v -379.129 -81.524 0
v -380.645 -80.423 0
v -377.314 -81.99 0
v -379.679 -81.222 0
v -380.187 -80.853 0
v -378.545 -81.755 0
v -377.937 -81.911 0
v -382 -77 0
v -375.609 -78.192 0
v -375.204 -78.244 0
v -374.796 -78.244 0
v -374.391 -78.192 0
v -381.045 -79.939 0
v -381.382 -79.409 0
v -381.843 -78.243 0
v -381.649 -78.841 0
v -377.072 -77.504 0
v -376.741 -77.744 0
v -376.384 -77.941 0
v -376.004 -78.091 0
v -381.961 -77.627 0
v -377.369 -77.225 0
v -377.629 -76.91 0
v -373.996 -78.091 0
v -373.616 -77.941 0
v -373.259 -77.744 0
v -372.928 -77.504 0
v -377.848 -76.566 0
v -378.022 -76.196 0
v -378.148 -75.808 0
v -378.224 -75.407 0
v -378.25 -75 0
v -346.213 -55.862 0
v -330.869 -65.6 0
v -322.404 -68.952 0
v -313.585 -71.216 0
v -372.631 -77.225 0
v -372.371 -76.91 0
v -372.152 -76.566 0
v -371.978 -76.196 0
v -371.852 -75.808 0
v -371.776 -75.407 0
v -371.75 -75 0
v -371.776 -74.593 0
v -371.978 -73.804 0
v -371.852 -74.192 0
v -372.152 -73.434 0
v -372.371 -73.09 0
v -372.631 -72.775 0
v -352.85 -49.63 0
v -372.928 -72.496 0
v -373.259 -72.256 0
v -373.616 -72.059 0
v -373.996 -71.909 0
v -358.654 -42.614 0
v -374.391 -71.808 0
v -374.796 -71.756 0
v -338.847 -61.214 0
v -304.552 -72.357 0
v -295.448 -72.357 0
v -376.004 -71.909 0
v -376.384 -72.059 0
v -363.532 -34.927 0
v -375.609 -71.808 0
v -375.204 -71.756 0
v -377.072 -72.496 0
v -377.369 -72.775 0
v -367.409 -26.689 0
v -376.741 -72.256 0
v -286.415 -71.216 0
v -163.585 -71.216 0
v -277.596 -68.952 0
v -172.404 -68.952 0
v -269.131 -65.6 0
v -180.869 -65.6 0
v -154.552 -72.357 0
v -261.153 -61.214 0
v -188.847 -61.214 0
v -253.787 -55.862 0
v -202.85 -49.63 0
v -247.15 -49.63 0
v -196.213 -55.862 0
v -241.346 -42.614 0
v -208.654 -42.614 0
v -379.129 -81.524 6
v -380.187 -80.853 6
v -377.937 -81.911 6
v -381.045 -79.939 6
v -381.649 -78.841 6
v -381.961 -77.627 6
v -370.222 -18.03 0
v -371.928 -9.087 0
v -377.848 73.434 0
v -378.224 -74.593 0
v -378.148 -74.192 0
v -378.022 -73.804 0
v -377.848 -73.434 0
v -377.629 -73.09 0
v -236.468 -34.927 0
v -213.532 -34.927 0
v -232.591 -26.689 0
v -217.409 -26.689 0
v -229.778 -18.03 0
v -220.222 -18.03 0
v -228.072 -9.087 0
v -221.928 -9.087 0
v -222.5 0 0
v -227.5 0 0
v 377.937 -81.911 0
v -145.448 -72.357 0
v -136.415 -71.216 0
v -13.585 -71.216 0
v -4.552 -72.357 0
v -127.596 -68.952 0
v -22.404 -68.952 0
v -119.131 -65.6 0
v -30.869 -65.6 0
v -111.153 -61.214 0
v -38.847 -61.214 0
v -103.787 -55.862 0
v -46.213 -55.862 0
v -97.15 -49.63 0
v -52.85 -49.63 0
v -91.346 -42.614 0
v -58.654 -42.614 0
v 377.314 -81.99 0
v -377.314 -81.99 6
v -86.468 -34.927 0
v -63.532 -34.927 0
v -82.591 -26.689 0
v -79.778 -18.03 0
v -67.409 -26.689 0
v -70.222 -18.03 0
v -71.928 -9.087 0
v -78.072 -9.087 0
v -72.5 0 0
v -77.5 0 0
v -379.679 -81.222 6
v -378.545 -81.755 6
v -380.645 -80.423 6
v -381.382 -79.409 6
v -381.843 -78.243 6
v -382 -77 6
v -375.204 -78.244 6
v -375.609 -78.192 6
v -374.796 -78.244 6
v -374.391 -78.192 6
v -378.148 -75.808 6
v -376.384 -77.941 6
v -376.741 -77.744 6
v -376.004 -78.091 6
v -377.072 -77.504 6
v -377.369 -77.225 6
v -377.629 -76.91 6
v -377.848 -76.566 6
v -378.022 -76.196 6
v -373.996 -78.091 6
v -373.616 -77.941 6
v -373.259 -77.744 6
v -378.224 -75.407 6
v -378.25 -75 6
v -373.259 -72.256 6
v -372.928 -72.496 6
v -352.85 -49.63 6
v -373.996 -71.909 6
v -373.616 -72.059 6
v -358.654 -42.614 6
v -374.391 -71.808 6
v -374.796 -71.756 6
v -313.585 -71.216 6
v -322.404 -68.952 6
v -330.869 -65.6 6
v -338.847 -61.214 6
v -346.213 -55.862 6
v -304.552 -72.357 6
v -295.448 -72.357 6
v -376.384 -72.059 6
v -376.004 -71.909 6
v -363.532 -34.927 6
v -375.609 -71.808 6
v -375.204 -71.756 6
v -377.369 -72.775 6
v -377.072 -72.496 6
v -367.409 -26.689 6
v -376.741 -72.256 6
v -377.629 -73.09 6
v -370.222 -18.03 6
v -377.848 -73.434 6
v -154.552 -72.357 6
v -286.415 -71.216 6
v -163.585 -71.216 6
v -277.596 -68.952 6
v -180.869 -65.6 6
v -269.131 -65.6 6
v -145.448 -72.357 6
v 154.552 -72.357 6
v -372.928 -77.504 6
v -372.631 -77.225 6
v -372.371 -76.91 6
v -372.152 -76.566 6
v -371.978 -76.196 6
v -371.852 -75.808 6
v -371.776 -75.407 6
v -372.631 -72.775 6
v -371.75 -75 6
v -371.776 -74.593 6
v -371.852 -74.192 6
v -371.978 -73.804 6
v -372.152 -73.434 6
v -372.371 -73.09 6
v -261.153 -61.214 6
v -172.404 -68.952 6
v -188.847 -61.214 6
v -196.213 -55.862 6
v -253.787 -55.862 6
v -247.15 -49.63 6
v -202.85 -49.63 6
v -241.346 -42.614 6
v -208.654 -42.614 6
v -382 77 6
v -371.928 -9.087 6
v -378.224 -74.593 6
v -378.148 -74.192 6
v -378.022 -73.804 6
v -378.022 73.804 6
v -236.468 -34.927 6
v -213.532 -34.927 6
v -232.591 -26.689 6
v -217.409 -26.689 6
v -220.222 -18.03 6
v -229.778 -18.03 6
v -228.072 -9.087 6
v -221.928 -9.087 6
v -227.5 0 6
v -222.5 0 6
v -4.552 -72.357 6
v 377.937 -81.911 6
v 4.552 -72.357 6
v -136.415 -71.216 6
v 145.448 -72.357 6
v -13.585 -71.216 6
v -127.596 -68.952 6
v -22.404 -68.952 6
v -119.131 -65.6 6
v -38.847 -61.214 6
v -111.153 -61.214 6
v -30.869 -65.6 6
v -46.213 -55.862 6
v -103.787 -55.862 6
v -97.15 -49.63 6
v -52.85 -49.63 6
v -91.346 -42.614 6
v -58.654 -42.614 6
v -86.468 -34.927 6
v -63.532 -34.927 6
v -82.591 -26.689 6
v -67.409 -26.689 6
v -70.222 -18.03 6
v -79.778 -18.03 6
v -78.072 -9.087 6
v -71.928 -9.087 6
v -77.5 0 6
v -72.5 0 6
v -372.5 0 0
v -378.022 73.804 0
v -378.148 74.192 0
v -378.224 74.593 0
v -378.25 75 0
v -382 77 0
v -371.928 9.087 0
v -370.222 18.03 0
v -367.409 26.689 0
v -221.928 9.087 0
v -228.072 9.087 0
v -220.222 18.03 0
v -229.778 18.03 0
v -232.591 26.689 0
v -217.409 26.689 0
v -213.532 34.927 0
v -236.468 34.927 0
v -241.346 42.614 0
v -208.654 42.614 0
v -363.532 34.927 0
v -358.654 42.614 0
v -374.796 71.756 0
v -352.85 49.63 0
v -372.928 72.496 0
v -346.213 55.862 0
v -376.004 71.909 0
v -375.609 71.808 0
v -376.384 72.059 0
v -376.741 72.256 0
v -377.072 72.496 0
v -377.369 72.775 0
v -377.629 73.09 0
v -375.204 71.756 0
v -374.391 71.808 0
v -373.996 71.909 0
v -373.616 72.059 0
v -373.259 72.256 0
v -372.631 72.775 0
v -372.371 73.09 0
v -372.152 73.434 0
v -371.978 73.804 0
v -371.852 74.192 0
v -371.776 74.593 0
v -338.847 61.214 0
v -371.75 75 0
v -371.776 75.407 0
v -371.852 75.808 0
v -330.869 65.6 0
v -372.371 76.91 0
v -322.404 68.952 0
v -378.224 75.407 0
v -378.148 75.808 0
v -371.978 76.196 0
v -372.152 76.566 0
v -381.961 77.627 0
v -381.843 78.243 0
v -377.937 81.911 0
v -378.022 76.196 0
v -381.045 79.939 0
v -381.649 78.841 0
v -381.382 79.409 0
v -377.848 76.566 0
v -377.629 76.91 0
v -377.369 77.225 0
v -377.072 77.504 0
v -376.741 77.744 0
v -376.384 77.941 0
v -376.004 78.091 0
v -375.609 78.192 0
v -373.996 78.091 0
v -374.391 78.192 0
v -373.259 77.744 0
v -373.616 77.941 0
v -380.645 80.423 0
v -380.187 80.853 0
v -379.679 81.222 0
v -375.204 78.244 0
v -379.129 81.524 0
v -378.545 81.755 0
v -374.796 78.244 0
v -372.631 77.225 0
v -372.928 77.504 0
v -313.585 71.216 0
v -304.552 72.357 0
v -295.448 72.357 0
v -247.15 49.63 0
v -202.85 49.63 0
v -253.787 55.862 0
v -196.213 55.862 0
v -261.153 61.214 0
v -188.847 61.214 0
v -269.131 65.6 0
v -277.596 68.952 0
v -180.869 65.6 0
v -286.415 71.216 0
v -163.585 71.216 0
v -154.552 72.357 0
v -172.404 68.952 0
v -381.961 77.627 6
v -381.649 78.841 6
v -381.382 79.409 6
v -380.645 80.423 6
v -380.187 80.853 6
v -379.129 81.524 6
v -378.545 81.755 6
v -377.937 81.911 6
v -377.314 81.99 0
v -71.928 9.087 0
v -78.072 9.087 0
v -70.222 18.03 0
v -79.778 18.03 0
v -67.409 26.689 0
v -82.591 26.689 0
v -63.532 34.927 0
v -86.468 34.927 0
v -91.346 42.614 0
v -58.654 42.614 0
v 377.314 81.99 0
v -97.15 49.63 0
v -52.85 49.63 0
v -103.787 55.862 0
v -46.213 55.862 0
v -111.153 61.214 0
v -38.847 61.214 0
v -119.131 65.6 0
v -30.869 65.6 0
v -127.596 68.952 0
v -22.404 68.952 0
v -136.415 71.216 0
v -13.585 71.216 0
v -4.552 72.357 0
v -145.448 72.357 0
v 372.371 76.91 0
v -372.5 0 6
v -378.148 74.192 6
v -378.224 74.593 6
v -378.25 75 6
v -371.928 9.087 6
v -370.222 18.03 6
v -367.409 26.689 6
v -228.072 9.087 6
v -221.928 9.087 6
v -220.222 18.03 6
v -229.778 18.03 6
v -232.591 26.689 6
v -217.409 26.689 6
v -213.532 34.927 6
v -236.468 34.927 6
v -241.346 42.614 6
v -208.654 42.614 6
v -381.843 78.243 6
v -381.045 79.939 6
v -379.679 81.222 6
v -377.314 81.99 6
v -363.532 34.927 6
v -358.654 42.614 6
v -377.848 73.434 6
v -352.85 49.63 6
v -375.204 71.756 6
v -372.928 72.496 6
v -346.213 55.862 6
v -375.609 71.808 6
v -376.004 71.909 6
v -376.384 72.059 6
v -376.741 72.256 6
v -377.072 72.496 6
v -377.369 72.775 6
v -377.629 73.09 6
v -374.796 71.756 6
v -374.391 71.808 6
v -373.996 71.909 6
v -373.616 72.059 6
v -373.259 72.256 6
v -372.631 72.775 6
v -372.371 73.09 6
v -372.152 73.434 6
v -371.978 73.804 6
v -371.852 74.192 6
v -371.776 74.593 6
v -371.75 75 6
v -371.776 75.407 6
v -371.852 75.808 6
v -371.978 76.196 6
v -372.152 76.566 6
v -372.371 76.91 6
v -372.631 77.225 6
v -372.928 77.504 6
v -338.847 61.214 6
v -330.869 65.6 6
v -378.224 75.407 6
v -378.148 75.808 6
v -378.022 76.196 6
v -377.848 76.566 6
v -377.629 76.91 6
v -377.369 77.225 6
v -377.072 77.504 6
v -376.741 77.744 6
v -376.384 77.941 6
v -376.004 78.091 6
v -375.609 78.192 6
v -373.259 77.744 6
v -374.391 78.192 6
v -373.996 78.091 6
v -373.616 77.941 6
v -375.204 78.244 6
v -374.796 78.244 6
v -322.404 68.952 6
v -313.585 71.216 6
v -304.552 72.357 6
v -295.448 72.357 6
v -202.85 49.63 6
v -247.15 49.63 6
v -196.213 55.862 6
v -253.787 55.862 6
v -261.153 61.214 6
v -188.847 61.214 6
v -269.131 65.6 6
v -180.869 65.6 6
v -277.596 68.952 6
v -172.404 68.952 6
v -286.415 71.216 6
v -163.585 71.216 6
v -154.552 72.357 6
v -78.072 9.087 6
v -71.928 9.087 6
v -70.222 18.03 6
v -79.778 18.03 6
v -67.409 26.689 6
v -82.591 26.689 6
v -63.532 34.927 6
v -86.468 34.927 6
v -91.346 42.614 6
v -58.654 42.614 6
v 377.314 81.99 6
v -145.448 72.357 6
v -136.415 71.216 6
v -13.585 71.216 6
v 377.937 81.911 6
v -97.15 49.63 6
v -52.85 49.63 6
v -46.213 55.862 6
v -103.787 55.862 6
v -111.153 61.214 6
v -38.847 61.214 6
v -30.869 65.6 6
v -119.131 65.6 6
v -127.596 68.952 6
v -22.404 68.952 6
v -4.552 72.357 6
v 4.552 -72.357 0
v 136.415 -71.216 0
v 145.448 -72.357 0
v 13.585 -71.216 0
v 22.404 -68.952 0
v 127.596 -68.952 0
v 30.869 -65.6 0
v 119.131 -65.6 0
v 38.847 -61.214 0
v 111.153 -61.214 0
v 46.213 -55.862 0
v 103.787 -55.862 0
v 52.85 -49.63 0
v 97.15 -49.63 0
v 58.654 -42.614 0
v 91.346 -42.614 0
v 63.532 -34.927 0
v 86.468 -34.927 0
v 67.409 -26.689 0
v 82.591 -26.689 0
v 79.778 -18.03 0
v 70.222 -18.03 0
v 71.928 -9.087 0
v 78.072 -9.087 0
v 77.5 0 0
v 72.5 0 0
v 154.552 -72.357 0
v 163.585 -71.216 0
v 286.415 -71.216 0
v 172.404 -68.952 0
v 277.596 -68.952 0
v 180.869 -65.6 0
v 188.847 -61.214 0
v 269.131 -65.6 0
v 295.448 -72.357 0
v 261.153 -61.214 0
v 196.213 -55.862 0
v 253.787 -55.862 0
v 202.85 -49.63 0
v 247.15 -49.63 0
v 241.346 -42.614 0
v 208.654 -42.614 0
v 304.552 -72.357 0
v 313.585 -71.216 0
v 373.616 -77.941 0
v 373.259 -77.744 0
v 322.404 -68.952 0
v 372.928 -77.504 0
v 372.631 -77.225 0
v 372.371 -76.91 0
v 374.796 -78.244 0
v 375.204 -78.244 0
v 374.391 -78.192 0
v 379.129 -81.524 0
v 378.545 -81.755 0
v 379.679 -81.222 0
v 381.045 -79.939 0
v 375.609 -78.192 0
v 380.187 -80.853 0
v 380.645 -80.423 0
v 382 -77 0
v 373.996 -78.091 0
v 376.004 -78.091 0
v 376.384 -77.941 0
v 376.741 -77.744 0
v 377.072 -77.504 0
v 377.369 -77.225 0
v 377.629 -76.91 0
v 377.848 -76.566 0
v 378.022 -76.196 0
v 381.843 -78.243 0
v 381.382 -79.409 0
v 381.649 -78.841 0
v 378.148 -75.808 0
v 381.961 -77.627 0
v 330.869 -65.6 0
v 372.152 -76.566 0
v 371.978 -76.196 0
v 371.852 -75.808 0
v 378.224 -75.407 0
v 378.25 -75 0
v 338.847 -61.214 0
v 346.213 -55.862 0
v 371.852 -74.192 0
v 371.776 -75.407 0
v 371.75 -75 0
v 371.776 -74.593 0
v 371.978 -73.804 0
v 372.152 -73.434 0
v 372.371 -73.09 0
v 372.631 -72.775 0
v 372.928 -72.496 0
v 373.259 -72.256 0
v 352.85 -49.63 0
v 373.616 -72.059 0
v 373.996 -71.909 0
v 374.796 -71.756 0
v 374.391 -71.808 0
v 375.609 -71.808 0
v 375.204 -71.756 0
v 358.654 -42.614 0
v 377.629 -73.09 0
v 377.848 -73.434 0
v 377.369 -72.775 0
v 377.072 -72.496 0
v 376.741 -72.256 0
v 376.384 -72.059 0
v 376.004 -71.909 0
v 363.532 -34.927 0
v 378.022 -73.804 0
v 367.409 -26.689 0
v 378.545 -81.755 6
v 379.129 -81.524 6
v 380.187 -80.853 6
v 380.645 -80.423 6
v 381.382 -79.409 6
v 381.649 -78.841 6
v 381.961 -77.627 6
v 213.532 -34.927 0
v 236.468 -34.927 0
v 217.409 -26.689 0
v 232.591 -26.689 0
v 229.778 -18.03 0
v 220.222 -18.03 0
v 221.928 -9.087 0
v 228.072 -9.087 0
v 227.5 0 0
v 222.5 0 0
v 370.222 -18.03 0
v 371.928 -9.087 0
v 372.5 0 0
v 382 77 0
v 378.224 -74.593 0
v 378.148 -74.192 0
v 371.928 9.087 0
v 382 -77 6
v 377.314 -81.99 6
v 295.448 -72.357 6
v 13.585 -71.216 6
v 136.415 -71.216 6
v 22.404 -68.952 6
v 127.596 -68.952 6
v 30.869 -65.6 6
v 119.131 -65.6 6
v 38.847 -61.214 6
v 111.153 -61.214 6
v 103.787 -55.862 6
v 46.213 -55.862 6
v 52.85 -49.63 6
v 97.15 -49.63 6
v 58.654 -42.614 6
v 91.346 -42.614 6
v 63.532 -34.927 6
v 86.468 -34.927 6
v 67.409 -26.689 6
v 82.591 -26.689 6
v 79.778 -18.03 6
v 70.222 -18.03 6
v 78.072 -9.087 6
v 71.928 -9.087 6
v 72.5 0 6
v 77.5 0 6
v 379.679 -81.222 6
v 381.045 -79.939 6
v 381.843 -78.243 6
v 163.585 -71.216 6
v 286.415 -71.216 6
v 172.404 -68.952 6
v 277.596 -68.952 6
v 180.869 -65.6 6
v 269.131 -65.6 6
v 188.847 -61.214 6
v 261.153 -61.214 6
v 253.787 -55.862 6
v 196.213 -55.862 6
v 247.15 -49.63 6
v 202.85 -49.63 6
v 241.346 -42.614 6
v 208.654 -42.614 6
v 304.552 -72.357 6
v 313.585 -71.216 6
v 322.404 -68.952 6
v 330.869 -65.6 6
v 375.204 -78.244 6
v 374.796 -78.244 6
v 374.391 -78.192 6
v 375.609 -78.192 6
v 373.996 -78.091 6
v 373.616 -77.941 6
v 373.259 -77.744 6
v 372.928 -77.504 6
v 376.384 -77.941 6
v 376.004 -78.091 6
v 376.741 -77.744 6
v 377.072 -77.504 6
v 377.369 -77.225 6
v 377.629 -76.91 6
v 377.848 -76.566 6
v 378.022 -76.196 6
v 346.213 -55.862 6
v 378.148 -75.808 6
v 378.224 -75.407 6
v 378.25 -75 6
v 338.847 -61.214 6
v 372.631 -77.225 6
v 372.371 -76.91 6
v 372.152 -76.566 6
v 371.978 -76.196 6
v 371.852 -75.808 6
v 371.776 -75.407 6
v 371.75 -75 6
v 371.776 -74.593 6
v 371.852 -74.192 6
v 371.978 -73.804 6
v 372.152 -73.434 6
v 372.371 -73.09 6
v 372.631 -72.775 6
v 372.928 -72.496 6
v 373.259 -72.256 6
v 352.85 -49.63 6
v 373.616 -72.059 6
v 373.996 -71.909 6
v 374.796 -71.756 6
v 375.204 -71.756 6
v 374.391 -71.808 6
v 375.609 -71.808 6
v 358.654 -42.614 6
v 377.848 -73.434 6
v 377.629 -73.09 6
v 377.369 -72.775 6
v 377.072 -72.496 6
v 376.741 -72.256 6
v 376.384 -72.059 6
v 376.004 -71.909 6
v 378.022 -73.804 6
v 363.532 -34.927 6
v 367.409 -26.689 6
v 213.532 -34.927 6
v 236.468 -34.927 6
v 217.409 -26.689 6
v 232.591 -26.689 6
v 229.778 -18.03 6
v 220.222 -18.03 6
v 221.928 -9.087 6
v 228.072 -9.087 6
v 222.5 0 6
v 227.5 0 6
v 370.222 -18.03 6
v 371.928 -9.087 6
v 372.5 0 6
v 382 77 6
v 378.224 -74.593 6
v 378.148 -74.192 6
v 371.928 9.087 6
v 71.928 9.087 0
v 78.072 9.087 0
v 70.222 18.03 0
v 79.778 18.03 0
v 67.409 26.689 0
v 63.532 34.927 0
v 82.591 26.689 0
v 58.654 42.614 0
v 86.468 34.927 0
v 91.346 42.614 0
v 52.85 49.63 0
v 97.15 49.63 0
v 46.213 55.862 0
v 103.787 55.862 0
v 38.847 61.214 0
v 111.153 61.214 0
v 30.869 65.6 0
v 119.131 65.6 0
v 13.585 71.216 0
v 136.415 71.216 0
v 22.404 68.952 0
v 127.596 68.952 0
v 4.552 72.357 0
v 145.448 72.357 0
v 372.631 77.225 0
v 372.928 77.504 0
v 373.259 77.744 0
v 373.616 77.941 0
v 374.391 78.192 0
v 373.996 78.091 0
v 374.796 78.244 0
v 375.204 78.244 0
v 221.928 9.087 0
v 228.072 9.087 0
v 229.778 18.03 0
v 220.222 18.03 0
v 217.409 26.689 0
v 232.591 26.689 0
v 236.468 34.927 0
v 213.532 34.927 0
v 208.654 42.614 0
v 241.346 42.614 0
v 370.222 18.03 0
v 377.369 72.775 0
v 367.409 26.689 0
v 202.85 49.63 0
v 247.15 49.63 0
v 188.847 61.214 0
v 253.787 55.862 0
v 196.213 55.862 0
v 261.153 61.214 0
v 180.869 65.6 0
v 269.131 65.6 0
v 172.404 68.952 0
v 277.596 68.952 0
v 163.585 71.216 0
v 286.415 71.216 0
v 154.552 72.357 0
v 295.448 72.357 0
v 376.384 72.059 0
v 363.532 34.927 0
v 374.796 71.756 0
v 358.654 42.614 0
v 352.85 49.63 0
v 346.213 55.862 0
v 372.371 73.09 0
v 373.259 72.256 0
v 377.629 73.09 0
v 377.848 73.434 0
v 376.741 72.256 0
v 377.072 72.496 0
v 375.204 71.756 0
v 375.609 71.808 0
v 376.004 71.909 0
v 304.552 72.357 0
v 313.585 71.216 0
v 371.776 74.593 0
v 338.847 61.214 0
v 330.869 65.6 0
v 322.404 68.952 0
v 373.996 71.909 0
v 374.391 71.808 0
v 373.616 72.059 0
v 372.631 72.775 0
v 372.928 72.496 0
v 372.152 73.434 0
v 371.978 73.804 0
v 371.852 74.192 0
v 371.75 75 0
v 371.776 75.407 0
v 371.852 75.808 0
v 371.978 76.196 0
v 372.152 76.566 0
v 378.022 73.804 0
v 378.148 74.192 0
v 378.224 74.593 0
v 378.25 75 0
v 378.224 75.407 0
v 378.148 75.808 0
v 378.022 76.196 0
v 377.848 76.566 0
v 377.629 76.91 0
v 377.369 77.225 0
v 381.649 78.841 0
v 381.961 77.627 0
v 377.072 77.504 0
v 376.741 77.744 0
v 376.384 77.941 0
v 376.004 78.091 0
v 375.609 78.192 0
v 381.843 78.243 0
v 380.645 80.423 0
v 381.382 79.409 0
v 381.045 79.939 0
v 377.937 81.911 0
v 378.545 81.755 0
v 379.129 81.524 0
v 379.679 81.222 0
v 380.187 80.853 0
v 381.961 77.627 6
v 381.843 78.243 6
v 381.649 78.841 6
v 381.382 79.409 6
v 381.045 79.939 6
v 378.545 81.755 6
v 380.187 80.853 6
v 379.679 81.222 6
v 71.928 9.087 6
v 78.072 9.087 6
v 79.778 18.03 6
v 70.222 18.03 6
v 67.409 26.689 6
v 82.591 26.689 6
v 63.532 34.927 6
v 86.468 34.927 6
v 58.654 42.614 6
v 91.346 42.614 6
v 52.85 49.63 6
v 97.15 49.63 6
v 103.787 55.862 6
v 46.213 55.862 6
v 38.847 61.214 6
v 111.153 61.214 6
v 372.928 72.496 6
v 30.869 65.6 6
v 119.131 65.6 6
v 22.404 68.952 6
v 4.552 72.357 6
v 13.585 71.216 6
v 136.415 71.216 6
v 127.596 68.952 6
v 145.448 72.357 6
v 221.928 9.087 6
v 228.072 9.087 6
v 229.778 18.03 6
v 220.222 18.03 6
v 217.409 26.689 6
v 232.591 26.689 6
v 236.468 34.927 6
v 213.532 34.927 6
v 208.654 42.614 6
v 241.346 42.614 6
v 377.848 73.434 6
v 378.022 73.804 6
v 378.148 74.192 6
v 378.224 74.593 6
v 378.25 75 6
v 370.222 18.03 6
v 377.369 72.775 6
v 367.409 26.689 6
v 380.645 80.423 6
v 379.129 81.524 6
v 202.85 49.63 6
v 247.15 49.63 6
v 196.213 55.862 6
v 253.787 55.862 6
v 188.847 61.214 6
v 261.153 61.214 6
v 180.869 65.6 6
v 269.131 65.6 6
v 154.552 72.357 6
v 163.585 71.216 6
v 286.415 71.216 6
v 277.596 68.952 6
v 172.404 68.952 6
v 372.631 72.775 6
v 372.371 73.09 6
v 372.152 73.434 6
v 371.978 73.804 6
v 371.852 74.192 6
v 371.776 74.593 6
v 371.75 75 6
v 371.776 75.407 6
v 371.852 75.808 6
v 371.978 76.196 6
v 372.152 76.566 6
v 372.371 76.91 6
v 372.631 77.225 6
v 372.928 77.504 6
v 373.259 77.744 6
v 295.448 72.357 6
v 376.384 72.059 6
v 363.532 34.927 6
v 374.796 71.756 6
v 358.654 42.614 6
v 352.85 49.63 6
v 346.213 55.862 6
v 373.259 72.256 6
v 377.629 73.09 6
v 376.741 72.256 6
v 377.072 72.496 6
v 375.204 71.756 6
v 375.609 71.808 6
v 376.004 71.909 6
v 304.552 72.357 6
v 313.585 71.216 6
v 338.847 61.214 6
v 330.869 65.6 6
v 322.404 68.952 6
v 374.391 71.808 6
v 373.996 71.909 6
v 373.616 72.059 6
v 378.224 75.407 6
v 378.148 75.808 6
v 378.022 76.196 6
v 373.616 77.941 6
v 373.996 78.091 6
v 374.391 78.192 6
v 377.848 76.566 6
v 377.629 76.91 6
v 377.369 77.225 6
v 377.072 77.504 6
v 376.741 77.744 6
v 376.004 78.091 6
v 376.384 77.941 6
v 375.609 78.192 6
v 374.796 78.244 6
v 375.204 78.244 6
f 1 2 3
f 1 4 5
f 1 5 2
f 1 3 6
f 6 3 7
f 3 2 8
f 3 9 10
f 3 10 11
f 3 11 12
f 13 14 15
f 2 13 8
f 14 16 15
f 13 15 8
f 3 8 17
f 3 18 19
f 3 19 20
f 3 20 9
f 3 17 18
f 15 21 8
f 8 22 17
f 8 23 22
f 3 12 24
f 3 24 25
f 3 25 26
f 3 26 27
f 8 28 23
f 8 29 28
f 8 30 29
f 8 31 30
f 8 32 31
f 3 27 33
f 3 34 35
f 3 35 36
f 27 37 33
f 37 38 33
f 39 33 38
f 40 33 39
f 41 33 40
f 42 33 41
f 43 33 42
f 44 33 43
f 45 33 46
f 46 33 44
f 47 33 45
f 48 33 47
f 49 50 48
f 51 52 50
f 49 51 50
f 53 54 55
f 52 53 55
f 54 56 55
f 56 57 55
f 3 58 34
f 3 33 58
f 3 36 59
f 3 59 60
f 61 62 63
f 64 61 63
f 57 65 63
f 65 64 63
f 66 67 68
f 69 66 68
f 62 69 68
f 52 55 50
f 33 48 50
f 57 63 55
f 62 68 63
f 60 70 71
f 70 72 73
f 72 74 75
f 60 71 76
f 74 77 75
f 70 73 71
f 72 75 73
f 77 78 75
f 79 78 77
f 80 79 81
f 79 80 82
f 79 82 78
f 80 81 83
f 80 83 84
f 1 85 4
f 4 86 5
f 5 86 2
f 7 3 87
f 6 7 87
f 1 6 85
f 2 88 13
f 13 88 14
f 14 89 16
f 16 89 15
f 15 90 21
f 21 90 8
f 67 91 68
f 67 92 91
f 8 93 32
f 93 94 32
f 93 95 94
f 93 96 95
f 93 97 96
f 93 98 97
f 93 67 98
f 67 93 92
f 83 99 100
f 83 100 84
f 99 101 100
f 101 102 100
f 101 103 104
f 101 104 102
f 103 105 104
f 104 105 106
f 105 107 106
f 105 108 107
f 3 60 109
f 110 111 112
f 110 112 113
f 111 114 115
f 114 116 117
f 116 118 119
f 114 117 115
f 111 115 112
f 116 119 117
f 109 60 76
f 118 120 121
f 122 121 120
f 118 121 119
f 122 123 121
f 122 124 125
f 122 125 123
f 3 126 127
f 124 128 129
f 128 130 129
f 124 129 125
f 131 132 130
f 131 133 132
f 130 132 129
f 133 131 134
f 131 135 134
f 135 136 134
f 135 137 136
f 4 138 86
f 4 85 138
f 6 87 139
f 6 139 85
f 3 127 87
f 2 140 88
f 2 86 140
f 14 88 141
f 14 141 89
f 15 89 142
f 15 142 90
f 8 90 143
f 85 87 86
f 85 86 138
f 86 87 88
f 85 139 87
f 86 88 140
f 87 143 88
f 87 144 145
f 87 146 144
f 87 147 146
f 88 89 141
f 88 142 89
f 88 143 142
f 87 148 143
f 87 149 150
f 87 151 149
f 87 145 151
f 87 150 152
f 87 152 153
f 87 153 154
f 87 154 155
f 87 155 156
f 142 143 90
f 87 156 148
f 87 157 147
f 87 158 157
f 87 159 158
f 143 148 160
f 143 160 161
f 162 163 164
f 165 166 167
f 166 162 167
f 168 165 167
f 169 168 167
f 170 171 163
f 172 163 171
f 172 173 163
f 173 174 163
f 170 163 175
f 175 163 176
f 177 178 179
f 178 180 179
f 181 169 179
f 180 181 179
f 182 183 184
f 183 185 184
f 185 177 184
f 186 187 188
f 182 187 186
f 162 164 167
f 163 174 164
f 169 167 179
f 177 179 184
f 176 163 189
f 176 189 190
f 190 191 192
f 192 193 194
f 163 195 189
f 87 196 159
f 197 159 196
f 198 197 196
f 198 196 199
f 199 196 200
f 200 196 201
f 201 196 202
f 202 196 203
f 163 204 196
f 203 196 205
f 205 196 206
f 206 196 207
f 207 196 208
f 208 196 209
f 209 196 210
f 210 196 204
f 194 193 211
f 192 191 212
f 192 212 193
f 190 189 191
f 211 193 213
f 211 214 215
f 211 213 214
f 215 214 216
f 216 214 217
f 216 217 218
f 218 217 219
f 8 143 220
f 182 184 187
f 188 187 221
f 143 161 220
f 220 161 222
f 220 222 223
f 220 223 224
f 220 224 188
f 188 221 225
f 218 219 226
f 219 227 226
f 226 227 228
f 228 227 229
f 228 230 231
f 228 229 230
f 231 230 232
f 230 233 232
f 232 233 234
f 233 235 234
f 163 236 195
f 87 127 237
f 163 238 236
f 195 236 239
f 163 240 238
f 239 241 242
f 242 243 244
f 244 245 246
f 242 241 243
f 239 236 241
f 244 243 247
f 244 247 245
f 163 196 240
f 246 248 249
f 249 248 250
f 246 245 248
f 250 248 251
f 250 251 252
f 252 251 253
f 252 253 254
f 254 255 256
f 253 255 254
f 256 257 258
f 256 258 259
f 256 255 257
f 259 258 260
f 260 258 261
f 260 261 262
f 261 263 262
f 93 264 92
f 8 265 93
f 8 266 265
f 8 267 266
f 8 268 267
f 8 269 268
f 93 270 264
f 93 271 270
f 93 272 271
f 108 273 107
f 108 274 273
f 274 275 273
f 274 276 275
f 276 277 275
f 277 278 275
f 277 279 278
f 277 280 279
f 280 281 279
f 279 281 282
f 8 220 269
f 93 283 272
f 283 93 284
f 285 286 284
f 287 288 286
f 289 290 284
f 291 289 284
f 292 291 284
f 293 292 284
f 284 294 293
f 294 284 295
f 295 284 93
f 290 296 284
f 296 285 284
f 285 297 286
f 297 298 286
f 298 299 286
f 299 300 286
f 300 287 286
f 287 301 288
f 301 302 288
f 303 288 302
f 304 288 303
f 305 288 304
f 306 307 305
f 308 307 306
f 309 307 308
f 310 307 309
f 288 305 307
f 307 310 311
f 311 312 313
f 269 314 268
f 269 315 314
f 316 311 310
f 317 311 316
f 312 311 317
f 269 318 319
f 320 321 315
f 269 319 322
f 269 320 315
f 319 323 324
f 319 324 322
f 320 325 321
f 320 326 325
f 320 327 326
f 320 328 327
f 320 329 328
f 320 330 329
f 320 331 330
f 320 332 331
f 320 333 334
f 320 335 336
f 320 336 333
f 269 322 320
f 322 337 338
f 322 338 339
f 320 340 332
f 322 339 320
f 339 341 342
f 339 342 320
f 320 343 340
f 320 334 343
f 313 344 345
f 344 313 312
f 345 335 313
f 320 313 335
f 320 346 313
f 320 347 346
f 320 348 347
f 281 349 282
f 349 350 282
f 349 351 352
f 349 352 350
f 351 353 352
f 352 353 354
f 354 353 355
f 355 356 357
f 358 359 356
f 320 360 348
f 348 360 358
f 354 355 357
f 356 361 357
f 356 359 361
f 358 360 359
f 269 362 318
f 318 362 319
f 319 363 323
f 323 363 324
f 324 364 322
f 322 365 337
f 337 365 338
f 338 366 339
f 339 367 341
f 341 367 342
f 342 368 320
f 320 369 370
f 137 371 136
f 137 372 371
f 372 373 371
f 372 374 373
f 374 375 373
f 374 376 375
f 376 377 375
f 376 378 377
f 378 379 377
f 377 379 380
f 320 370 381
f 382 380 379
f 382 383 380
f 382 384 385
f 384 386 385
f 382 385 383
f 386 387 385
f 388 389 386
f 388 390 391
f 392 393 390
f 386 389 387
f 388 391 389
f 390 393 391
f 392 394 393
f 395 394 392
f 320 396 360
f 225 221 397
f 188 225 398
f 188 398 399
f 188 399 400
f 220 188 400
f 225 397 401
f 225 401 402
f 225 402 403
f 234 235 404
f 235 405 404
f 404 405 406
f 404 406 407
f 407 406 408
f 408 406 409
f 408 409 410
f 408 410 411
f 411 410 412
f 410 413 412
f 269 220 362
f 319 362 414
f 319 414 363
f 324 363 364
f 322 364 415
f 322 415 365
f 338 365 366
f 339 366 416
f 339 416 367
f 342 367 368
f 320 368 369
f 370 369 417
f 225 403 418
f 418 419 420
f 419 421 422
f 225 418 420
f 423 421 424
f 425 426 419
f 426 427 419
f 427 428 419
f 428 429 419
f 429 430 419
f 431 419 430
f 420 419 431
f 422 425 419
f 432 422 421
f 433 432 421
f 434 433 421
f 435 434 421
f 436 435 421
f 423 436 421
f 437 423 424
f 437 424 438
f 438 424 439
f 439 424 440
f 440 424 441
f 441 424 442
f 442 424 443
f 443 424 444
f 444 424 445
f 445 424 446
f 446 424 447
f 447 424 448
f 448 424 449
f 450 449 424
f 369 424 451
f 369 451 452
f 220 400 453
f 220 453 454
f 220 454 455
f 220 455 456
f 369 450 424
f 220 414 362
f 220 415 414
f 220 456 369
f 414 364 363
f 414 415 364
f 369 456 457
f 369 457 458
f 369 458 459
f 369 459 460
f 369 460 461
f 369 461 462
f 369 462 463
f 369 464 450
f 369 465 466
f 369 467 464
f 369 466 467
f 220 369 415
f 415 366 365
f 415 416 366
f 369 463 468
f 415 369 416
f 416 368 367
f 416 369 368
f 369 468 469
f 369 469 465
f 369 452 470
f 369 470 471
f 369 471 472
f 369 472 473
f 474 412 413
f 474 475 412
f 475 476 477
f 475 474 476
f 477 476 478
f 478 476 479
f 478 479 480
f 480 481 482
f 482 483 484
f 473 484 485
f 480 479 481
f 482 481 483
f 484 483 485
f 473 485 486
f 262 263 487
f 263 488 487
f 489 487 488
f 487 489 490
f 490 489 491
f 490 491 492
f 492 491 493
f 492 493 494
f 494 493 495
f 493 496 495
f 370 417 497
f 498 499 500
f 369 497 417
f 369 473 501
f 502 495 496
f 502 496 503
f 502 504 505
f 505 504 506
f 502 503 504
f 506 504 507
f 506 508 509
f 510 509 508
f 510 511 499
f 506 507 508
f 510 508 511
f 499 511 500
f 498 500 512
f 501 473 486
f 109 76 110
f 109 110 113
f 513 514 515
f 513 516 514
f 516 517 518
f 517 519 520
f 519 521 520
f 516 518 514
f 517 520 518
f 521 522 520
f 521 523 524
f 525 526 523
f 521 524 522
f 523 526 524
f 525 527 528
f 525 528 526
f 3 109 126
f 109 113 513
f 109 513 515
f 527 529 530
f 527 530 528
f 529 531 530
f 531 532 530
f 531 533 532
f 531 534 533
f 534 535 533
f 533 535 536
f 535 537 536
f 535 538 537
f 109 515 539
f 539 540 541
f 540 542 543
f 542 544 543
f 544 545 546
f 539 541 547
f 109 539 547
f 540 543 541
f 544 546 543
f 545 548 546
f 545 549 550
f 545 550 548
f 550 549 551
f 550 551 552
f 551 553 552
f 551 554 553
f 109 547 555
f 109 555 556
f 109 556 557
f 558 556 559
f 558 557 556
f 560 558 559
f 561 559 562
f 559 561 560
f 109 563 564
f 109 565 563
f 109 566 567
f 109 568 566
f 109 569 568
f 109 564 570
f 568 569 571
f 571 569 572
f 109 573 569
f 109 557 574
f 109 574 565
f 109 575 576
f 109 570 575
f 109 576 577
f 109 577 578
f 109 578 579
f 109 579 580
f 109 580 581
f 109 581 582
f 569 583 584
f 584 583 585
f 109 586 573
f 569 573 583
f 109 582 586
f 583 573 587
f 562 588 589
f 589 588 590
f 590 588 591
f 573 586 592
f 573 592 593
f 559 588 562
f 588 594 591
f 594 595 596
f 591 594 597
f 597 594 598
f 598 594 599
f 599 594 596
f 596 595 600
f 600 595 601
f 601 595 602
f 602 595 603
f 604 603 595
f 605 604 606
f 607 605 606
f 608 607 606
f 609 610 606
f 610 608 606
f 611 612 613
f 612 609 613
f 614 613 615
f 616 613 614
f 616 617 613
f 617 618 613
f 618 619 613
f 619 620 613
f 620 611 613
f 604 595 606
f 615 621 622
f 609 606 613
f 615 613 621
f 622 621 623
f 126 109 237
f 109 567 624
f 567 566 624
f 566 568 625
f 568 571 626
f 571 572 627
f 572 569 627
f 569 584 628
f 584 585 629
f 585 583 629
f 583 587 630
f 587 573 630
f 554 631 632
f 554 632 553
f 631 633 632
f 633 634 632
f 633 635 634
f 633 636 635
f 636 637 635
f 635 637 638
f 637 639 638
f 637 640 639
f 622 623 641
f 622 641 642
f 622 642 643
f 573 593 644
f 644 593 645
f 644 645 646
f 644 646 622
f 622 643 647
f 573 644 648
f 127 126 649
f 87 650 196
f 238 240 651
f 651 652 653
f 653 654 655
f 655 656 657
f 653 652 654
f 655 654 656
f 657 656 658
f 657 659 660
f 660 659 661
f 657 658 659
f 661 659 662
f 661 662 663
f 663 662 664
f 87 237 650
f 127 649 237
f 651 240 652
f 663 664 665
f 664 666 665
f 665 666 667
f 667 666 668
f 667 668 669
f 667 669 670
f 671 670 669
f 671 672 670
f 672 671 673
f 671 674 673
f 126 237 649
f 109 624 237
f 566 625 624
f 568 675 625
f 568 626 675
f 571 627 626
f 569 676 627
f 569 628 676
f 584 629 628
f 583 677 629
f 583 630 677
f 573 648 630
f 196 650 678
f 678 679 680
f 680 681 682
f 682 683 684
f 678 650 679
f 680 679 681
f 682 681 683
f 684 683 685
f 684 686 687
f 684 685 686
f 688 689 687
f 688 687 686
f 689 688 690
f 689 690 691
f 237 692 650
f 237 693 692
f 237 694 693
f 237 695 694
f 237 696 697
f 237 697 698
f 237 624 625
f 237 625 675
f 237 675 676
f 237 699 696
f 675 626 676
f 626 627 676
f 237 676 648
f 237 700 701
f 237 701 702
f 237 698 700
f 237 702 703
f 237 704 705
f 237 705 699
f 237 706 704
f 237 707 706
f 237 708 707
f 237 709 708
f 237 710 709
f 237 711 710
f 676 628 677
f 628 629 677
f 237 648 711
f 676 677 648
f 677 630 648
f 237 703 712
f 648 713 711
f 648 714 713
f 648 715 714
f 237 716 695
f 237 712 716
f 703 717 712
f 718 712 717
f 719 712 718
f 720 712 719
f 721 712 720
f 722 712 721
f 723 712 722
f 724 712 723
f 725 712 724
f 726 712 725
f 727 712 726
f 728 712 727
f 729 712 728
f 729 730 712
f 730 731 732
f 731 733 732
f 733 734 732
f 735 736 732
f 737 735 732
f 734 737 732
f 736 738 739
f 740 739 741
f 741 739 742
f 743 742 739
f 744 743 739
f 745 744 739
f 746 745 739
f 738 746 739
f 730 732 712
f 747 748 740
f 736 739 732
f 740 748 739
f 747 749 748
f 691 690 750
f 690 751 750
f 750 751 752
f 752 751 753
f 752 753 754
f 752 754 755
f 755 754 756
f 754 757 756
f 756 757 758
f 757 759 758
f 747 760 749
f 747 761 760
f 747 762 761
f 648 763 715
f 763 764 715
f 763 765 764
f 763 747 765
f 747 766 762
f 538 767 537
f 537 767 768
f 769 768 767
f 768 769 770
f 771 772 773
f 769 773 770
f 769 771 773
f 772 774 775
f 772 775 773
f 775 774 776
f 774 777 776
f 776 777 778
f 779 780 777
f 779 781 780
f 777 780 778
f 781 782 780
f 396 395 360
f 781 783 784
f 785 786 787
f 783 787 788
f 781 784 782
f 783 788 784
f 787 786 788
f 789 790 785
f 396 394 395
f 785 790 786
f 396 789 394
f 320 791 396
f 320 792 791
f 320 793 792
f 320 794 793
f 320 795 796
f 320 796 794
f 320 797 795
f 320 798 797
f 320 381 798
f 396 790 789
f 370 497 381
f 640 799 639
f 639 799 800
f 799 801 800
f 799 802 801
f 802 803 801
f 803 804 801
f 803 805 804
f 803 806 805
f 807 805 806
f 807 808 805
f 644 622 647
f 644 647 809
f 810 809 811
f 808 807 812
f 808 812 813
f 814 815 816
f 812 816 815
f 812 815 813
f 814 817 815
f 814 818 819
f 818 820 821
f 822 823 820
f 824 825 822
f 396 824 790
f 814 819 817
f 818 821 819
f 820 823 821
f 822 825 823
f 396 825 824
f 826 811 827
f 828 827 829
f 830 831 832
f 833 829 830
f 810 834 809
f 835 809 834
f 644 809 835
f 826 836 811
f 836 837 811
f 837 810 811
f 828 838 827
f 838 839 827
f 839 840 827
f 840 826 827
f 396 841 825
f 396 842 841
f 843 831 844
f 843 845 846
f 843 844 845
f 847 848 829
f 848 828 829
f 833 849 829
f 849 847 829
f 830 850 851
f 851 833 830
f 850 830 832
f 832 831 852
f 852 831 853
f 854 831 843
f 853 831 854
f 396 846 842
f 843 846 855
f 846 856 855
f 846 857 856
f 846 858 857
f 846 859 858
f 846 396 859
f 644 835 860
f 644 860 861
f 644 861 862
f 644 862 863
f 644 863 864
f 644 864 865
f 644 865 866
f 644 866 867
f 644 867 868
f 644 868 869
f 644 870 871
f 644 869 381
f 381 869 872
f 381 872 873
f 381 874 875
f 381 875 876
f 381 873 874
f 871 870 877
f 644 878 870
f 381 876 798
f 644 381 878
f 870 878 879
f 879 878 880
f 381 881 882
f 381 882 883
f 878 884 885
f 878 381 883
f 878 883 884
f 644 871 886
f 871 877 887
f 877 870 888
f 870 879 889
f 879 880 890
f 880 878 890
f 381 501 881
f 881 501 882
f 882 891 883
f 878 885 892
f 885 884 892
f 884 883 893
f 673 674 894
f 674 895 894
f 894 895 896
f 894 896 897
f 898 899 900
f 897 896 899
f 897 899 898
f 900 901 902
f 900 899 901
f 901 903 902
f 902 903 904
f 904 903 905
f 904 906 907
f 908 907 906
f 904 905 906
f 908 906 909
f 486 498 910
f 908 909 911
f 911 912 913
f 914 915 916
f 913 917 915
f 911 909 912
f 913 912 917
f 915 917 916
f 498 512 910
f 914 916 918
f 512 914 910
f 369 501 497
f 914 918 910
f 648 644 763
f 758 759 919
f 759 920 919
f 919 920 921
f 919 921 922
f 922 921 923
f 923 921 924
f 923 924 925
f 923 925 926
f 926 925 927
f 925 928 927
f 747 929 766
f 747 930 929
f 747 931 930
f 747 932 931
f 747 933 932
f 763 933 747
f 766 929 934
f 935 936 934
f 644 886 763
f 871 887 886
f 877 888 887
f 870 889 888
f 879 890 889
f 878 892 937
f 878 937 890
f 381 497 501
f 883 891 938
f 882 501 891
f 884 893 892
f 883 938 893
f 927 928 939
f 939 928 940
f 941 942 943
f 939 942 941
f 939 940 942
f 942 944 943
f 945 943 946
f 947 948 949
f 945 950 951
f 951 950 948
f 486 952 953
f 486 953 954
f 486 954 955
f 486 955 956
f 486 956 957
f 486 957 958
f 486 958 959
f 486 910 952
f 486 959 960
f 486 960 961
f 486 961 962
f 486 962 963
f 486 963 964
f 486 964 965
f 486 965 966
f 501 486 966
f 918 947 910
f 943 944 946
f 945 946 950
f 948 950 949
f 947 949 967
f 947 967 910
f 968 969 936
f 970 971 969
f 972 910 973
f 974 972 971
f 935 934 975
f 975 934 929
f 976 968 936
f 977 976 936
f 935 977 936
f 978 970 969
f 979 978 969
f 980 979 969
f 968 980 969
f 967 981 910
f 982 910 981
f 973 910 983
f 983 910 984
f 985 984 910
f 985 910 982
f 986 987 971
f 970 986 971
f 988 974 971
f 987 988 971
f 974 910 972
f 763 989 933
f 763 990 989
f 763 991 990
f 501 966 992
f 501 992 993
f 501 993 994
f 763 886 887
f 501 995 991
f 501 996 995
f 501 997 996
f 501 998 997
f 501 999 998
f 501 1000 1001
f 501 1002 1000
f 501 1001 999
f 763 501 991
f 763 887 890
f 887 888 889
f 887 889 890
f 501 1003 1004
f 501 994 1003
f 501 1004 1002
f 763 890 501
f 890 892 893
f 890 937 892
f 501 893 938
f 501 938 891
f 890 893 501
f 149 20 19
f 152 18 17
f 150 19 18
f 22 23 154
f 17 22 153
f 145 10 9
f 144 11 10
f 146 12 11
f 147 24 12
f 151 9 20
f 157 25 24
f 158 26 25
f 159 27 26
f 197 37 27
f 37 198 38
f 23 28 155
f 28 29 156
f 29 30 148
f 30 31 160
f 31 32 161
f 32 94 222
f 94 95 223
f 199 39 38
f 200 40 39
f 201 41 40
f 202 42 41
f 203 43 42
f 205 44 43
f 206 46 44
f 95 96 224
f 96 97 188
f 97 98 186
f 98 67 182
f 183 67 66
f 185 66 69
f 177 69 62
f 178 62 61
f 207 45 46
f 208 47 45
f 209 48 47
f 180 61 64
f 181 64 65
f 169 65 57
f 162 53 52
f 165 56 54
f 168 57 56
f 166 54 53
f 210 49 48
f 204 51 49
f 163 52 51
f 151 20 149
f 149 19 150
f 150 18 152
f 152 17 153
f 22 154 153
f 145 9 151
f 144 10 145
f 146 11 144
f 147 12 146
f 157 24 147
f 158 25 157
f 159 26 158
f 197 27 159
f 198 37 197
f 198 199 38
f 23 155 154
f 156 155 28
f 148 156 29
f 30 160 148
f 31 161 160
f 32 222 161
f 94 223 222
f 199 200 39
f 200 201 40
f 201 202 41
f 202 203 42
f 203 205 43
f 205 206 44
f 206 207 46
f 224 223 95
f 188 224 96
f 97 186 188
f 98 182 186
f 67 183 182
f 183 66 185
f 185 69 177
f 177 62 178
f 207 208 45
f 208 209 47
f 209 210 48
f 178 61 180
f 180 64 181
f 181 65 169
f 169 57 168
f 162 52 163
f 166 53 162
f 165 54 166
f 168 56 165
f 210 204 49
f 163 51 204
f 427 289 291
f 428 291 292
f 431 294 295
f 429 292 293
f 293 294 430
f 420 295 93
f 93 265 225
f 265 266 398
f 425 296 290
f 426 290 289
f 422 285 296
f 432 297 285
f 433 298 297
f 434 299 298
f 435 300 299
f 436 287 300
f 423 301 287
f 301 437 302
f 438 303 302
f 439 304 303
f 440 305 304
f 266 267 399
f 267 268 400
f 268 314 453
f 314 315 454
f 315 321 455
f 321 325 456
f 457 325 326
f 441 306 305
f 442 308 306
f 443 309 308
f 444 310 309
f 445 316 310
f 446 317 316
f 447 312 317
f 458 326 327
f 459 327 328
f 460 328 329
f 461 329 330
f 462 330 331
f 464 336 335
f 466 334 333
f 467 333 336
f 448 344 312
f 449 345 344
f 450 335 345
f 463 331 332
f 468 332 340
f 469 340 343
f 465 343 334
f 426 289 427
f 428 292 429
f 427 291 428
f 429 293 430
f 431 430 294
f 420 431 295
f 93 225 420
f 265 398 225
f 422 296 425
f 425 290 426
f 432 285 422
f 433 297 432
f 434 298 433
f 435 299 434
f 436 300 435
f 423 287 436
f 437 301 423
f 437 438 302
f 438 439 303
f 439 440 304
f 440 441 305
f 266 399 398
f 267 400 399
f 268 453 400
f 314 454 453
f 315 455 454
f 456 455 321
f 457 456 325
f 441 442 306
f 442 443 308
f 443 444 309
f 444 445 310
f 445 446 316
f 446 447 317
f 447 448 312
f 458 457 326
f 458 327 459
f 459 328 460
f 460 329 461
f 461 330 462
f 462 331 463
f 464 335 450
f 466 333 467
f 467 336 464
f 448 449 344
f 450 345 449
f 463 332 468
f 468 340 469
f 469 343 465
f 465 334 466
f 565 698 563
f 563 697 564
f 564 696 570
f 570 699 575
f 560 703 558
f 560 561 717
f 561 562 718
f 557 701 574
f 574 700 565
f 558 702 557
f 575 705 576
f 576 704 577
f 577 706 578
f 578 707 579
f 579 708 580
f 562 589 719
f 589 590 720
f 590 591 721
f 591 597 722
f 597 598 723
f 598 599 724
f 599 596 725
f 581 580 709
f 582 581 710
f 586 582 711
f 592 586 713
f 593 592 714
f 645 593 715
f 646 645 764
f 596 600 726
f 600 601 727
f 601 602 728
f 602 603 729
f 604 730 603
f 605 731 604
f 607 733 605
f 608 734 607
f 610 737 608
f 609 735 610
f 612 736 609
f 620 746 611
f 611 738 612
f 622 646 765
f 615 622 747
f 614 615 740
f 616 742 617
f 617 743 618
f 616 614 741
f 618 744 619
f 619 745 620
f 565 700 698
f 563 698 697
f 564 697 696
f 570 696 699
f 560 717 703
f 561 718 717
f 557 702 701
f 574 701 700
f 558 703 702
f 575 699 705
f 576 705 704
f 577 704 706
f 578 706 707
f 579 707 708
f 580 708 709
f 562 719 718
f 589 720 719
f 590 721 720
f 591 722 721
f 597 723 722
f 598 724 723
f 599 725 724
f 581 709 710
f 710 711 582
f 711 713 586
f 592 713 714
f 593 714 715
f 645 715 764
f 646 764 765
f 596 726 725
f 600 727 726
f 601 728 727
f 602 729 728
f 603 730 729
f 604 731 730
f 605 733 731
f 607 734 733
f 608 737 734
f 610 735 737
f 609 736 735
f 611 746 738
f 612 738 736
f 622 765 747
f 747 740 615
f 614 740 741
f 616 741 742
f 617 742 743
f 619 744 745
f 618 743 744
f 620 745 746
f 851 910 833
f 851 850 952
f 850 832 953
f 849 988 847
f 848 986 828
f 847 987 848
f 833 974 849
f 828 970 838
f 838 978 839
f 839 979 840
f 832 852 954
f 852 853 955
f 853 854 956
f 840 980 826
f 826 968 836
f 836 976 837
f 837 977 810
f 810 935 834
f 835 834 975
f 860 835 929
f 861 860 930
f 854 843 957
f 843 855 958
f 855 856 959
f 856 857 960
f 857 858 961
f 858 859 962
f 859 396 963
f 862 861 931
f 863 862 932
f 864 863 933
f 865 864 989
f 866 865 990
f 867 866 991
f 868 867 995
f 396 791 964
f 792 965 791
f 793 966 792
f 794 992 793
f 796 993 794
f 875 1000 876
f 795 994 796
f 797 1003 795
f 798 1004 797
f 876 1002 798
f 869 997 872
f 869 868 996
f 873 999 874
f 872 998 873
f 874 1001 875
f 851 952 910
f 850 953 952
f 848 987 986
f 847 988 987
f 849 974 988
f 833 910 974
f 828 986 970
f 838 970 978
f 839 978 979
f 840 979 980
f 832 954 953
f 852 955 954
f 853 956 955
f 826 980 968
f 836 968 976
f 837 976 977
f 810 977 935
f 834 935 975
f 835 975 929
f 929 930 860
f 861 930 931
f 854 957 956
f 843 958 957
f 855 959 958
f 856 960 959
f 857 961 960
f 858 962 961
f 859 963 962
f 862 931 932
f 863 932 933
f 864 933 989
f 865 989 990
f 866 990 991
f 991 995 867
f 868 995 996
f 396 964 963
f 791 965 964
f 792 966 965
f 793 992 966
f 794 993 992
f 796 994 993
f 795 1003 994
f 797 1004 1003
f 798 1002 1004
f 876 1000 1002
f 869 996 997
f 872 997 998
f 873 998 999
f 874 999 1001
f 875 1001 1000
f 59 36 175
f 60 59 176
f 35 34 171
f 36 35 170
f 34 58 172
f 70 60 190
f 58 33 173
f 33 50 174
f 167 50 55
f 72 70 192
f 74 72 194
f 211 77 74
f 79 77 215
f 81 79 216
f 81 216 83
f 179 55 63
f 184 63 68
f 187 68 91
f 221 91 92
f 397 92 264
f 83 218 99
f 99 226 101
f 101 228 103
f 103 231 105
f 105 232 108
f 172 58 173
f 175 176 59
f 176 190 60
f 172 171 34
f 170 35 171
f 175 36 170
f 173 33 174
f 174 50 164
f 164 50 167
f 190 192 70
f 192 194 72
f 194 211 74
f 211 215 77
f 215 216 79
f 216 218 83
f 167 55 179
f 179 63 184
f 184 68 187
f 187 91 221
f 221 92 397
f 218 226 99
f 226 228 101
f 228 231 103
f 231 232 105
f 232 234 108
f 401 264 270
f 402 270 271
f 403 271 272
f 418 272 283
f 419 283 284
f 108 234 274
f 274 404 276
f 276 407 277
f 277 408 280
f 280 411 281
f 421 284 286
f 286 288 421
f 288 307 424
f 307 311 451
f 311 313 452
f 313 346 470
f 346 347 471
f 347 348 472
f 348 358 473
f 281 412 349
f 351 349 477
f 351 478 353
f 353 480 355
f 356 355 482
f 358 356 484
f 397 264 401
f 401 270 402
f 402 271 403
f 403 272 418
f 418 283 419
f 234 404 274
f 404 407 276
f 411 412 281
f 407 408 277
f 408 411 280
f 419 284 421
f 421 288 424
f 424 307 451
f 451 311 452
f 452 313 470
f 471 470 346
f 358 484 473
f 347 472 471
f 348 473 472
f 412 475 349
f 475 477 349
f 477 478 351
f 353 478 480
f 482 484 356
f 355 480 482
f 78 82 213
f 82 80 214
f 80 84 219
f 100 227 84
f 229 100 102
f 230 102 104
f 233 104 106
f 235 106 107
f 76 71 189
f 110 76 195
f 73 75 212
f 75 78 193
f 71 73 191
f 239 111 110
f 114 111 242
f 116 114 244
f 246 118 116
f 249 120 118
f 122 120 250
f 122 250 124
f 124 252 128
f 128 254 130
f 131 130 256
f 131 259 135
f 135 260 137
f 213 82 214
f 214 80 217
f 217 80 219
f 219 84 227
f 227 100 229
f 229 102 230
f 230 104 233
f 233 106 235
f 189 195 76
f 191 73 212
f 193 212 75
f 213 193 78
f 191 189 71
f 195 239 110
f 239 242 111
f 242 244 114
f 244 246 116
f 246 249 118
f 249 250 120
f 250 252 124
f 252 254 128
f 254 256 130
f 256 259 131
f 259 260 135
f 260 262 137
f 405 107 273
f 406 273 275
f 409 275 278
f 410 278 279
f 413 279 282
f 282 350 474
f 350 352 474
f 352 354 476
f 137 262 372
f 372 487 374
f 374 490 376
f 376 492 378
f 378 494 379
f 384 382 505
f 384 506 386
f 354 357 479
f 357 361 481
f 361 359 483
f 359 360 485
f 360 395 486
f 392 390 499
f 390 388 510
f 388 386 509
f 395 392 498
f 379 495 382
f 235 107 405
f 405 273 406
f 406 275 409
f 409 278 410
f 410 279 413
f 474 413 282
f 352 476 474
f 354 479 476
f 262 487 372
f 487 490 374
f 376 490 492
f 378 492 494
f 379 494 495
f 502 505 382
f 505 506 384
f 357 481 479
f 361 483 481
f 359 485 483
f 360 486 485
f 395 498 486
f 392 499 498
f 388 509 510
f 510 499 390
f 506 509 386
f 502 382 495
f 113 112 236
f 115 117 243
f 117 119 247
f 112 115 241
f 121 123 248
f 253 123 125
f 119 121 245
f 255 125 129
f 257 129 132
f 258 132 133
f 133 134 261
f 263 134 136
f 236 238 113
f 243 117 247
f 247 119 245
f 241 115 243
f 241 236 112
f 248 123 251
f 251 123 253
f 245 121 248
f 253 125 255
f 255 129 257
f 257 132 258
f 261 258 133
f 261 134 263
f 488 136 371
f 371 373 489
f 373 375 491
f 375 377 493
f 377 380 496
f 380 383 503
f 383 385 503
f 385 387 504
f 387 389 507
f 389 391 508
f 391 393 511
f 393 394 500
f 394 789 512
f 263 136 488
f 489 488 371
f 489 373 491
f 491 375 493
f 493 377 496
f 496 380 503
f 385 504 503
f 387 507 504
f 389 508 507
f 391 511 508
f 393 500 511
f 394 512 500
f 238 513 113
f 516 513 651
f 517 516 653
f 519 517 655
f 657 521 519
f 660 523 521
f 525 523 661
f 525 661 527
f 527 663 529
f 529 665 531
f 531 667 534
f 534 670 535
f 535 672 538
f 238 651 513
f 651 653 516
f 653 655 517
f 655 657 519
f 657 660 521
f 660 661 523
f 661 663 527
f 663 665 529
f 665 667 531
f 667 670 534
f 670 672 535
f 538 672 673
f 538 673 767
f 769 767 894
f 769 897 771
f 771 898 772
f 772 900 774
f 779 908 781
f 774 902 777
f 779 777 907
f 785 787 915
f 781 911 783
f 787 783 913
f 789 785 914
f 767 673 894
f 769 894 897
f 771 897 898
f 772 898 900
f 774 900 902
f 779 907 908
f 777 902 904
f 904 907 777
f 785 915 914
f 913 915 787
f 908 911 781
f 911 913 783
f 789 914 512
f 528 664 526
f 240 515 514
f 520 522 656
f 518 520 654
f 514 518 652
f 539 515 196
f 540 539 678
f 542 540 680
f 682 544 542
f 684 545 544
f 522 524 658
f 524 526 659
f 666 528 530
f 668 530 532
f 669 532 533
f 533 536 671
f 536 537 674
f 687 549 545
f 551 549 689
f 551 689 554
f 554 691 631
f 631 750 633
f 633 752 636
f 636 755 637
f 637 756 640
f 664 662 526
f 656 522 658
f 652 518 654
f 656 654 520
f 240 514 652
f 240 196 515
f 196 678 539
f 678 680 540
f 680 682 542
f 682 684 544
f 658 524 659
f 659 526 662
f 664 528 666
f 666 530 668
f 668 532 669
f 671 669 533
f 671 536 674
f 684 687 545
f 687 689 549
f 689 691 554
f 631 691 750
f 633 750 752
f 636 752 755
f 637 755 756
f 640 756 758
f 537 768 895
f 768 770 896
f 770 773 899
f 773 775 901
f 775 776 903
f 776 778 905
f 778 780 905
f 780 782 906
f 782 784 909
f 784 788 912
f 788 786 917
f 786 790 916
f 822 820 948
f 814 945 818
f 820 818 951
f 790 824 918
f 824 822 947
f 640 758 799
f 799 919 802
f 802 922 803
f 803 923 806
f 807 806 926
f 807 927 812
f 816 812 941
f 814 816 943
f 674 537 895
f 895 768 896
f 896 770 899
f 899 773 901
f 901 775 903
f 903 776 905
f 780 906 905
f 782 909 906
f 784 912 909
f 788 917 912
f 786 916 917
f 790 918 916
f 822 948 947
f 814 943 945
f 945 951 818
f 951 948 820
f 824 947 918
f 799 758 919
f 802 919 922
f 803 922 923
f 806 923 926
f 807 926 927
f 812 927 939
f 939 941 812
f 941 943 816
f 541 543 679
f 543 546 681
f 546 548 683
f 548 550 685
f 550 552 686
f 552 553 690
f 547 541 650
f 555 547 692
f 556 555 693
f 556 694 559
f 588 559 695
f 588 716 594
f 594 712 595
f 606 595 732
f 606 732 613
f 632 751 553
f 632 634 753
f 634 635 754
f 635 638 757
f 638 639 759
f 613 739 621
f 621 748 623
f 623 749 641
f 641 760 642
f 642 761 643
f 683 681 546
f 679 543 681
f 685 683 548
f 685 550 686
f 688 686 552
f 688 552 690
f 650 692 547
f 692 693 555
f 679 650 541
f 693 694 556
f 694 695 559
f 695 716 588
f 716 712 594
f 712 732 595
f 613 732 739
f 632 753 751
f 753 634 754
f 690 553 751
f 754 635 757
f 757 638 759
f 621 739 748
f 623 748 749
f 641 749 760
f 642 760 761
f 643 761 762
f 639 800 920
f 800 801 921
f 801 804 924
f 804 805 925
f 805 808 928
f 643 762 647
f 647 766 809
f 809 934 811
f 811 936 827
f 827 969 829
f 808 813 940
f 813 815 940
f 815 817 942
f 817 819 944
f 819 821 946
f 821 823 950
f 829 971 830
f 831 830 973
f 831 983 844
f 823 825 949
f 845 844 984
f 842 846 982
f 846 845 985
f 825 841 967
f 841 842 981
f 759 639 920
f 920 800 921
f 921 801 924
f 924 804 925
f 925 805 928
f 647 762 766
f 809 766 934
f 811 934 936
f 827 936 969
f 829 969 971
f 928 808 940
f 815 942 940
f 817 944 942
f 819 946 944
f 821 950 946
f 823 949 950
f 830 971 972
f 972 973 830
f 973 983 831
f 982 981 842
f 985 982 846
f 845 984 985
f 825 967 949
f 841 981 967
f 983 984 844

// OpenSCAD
$fn = 50;

difference() {
	union() {
		hull() {
			translate(v = [-377.0, 77.0, 0]) {
				cylinder(h = 6, r = 5);
			}
			translate(v = [377.0, 77.0, 0]) {
				cylinder(h = 6, r = 5);
			}
			translate(v = [-377.0, -77.0, 0]) {
				cylinder(h = 6, r = 5);
			}
			translate(v = [377.0, -77.0, 0]) {
				cylinder(h = 6, r = 5);
			}
		}
	}
	union() {
		translate(v = [-375.0, -75.0, -100.0]) {
			cylinder(h = 200, r = 3.25);
		}
		translate(v = [-375.0, 75.0, -100.0]) {
			cylinder(h = 200, r = 3.25);
		}
		translate(v = [375.0, -75.0, -100.0]) {
			cylinder(h = 200, r = 3.25);
		}
		translate(v = [375.0, 75.0, -100.0]) {
			cylinder(h = 200, r = 3.25);
		}
		translate(v = [-375.0, -75.0, -100.0]) {
			cylinder(h = 200, r = 1.8);
		}
		translate(v = [-375.0, 75.0, -100.0]) {
			cylinder(h = 200, r = 1.8);
		}
		translate(v = [375.0, -75.0, -100.0]) {
			cylinder(h = 200, r = 1.8);
		}
		translate(v = [375.0, 75.0, -100.0]) {
			cylinder(h = 200, r = 1.8);
		}
		translate(v = [-300.0, 0, 0.0]) {
			cylinder(h = 6, r = 72.5);
		}
		translate(v = [-150.0, 0, 0.0]) {
			cylinder(h = 6, r = 72.5);
		}
		cylinder(h = 6, r = 72.5);
		translate(v = [150.0, 0, 0.0]) {
			cylinder(h = 6, r = 72.5);
		}
		translate(v = [300.0, 0, 0.0]) {
			cylinder(h = 6, r = 72.5);
		}
	}
}
